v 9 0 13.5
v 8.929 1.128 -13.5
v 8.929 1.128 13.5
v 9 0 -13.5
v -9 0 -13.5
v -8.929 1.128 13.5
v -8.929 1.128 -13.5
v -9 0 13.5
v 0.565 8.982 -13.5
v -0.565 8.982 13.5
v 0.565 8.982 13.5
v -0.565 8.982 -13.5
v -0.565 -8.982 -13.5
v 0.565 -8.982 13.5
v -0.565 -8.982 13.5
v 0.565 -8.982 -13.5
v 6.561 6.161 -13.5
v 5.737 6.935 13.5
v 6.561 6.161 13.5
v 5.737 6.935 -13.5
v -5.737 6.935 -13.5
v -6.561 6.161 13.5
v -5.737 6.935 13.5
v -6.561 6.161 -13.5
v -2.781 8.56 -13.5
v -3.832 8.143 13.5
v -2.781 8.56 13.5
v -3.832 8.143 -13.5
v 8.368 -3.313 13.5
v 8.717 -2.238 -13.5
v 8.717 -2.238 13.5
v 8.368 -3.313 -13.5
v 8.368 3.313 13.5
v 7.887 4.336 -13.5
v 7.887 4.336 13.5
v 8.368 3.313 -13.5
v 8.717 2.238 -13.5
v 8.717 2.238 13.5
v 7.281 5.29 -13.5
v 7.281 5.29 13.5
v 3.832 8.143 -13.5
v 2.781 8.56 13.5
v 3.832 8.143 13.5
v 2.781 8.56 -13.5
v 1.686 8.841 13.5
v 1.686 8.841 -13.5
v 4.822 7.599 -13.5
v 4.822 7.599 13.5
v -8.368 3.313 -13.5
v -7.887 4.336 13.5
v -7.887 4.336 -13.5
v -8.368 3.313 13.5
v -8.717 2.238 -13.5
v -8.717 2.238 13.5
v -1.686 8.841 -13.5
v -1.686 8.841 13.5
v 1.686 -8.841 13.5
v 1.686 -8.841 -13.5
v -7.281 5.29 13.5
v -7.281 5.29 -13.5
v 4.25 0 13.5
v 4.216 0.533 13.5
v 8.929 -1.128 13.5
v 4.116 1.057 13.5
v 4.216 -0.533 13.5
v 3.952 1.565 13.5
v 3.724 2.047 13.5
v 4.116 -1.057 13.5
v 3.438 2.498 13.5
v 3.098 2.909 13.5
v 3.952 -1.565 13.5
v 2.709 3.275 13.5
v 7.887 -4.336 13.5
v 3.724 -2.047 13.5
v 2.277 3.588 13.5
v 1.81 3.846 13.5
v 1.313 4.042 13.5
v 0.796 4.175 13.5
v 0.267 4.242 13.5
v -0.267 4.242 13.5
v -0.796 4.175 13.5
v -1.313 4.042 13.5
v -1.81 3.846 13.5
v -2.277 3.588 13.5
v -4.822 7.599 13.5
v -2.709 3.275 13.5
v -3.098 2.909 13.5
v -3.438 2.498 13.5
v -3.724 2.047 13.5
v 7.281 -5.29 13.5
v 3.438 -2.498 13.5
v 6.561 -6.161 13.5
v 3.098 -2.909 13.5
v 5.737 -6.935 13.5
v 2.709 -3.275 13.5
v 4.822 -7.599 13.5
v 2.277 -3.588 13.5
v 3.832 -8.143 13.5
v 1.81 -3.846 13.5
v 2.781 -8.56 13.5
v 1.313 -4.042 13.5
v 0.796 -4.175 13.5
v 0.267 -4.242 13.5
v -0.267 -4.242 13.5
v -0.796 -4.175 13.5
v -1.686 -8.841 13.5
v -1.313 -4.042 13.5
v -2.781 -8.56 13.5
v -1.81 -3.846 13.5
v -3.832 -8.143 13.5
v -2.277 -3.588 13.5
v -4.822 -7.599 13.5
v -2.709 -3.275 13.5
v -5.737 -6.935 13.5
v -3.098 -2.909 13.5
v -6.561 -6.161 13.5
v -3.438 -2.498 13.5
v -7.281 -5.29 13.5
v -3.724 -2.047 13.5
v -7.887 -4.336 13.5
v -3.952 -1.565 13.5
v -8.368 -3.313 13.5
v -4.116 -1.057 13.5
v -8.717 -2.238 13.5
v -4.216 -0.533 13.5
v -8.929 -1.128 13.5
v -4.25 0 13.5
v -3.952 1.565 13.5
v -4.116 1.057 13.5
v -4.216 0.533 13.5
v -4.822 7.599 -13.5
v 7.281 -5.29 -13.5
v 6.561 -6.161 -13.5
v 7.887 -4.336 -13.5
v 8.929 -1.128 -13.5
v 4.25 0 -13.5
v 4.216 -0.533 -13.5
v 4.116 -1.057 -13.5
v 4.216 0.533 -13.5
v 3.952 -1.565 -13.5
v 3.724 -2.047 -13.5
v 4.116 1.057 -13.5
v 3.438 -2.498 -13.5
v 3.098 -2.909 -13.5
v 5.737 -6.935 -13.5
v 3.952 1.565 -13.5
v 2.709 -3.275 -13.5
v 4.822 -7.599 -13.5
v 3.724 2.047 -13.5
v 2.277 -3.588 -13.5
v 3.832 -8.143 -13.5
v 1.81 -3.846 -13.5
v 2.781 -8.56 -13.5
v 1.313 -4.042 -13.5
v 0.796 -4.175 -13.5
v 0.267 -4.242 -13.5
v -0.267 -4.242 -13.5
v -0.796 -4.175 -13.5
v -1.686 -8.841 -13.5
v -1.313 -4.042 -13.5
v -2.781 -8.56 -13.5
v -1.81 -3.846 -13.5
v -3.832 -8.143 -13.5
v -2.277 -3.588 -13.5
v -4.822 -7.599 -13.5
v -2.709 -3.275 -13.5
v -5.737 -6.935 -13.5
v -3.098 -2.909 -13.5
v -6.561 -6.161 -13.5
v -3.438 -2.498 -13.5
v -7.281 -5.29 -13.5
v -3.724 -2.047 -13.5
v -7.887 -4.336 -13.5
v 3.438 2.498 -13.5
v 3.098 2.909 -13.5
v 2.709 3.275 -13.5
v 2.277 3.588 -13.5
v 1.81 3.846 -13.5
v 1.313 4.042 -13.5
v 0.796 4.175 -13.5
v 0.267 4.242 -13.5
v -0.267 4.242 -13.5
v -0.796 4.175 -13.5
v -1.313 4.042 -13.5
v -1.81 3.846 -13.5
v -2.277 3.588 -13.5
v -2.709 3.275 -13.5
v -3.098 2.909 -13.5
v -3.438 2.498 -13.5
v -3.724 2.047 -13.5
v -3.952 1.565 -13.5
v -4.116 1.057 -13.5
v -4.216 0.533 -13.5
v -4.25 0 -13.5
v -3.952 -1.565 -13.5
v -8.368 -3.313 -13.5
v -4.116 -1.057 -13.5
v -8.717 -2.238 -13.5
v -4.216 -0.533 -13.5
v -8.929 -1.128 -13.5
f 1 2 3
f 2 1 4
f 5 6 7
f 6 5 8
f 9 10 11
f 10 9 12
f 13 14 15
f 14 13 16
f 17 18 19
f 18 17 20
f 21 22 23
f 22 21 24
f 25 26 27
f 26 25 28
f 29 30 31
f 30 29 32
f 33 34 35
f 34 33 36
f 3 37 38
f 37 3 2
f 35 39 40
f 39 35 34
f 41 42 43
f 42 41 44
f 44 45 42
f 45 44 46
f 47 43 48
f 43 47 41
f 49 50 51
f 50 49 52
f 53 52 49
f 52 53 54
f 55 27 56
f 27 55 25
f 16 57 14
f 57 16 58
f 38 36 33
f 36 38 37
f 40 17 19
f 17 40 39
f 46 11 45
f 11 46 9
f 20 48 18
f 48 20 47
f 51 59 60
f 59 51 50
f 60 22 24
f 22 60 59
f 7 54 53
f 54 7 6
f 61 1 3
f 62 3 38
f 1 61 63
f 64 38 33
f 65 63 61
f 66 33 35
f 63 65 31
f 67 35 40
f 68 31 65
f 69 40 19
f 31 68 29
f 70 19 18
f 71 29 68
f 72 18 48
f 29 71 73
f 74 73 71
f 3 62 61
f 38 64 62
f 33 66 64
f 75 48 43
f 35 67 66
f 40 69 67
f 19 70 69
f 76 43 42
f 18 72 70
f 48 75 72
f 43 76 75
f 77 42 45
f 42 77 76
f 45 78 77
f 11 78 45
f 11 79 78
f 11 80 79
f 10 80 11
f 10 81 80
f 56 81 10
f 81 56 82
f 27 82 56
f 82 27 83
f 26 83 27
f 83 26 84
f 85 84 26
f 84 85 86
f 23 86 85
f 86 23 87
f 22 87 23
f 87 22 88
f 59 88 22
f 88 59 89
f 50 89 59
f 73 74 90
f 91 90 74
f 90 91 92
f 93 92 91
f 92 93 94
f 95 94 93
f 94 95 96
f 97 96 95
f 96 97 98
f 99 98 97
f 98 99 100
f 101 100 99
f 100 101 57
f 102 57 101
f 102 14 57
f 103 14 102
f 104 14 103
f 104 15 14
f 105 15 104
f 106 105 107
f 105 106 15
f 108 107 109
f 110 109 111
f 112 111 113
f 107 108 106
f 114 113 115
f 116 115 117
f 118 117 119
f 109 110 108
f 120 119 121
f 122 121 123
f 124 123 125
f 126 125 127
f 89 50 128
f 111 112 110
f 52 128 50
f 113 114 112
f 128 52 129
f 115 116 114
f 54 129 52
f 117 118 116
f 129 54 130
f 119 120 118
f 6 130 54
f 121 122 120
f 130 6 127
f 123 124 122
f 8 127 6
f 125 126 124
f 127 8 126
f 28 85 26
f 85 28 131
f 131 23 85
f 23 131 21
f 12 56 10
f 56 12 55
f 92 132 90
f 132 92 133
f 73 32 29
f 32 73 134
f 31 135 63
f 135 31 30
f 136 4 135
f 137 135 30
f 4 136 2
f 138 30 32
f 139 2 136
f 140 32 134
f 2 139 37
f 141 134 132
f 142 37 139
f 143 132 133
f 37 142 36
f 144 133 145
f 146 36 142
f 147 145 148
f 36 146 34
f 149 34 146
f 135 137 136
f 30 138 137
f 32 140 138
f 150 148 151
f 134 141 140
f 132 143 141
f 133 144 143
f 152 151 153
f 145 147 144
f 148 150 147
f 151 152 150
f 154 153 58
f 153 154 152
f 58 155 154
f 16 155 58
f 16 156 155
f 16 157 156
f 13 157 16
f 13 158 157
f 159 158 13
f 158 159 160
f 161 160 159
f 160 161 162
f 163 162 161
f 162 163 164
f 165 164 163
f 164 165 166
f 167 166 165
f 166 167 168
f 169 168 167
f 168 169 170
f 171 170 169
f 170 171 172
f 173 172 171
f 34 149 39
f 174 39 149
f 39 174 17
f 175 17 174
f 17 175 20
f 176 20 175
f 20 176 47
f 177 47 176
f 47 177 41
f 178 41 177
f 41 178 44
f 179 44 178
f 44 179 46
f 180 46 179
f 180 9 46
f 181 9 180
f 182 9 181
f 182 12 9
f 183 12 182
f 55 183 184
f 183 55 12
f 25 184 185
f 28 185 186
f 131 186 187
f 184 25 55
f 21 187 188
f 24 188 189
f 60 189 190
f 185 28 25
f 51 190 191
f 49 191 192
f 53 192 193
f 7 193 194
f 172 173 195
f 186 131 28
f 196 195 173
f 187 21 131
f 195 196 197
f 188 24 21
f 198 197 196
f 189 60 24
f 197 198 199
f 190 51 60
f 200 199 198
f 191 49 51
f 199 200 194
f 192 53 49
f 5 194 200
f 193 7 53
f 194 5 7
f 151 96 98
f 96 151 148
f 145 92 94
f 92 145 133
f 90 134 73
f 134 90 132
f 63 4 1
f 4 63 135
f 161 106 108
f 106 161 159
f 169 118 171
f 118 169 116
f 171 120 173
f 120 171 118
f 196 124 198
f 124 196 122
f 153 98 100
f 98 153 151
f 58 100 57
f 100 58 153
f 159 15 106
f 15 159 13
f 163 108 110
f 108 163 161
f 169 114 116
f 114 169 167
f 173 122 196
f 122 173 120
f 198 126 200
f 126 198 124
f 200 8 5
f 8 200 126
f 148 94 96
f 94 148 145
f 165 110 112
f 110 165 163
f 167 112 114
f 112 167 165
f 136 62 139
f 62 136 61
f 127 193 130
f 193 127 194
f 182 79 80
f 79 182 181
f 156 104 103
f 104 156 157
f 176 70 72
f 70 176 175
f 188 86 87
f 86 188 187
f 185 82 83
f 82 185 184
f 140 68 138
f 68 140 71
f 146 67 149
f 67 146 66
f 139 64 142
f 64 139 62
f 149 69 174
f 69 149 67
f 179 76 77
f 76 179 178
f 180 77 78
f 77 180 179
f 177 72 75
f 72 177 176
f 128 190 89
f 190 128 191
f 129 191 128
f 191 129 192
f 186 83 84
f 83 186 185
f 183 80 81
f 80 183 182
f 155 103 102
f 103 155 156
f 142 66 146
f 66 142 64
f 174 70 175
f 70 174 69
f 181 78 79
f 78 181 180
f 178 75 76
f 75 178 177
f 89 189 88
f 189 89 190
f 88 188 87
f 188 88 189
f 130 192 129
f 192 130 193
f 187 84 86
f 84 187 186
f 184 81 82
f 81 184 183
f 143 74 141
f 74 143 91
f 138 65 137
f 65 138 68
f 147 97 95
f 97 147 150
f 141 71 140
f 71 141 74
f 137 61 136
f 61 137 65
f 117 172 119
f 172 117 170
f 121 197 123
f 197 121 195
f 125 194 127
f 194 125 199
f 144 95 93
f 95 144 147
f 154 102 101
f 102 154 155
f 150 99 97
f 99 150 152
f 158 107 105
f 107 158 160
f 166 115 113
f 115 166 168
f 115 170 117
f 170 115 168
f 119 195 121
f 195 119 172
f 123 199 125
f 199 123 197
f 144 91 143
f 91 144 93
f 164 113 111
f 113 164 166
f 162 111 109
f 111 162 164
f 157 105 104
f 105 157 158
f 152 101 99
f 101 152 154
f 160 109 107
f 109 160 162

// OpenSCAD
$fn = 50;


difference() {
	union() {
		translate(v = [0, 0, -13.5000000000]) {
			cylinder(h = 27, r = 9.0000000000);
		}
	}
	union() {
		translate(v = [0, 0, -100.0000000000]) {
			cylinder(h = 200, r = 4.2500000000);
		}
	}
}
